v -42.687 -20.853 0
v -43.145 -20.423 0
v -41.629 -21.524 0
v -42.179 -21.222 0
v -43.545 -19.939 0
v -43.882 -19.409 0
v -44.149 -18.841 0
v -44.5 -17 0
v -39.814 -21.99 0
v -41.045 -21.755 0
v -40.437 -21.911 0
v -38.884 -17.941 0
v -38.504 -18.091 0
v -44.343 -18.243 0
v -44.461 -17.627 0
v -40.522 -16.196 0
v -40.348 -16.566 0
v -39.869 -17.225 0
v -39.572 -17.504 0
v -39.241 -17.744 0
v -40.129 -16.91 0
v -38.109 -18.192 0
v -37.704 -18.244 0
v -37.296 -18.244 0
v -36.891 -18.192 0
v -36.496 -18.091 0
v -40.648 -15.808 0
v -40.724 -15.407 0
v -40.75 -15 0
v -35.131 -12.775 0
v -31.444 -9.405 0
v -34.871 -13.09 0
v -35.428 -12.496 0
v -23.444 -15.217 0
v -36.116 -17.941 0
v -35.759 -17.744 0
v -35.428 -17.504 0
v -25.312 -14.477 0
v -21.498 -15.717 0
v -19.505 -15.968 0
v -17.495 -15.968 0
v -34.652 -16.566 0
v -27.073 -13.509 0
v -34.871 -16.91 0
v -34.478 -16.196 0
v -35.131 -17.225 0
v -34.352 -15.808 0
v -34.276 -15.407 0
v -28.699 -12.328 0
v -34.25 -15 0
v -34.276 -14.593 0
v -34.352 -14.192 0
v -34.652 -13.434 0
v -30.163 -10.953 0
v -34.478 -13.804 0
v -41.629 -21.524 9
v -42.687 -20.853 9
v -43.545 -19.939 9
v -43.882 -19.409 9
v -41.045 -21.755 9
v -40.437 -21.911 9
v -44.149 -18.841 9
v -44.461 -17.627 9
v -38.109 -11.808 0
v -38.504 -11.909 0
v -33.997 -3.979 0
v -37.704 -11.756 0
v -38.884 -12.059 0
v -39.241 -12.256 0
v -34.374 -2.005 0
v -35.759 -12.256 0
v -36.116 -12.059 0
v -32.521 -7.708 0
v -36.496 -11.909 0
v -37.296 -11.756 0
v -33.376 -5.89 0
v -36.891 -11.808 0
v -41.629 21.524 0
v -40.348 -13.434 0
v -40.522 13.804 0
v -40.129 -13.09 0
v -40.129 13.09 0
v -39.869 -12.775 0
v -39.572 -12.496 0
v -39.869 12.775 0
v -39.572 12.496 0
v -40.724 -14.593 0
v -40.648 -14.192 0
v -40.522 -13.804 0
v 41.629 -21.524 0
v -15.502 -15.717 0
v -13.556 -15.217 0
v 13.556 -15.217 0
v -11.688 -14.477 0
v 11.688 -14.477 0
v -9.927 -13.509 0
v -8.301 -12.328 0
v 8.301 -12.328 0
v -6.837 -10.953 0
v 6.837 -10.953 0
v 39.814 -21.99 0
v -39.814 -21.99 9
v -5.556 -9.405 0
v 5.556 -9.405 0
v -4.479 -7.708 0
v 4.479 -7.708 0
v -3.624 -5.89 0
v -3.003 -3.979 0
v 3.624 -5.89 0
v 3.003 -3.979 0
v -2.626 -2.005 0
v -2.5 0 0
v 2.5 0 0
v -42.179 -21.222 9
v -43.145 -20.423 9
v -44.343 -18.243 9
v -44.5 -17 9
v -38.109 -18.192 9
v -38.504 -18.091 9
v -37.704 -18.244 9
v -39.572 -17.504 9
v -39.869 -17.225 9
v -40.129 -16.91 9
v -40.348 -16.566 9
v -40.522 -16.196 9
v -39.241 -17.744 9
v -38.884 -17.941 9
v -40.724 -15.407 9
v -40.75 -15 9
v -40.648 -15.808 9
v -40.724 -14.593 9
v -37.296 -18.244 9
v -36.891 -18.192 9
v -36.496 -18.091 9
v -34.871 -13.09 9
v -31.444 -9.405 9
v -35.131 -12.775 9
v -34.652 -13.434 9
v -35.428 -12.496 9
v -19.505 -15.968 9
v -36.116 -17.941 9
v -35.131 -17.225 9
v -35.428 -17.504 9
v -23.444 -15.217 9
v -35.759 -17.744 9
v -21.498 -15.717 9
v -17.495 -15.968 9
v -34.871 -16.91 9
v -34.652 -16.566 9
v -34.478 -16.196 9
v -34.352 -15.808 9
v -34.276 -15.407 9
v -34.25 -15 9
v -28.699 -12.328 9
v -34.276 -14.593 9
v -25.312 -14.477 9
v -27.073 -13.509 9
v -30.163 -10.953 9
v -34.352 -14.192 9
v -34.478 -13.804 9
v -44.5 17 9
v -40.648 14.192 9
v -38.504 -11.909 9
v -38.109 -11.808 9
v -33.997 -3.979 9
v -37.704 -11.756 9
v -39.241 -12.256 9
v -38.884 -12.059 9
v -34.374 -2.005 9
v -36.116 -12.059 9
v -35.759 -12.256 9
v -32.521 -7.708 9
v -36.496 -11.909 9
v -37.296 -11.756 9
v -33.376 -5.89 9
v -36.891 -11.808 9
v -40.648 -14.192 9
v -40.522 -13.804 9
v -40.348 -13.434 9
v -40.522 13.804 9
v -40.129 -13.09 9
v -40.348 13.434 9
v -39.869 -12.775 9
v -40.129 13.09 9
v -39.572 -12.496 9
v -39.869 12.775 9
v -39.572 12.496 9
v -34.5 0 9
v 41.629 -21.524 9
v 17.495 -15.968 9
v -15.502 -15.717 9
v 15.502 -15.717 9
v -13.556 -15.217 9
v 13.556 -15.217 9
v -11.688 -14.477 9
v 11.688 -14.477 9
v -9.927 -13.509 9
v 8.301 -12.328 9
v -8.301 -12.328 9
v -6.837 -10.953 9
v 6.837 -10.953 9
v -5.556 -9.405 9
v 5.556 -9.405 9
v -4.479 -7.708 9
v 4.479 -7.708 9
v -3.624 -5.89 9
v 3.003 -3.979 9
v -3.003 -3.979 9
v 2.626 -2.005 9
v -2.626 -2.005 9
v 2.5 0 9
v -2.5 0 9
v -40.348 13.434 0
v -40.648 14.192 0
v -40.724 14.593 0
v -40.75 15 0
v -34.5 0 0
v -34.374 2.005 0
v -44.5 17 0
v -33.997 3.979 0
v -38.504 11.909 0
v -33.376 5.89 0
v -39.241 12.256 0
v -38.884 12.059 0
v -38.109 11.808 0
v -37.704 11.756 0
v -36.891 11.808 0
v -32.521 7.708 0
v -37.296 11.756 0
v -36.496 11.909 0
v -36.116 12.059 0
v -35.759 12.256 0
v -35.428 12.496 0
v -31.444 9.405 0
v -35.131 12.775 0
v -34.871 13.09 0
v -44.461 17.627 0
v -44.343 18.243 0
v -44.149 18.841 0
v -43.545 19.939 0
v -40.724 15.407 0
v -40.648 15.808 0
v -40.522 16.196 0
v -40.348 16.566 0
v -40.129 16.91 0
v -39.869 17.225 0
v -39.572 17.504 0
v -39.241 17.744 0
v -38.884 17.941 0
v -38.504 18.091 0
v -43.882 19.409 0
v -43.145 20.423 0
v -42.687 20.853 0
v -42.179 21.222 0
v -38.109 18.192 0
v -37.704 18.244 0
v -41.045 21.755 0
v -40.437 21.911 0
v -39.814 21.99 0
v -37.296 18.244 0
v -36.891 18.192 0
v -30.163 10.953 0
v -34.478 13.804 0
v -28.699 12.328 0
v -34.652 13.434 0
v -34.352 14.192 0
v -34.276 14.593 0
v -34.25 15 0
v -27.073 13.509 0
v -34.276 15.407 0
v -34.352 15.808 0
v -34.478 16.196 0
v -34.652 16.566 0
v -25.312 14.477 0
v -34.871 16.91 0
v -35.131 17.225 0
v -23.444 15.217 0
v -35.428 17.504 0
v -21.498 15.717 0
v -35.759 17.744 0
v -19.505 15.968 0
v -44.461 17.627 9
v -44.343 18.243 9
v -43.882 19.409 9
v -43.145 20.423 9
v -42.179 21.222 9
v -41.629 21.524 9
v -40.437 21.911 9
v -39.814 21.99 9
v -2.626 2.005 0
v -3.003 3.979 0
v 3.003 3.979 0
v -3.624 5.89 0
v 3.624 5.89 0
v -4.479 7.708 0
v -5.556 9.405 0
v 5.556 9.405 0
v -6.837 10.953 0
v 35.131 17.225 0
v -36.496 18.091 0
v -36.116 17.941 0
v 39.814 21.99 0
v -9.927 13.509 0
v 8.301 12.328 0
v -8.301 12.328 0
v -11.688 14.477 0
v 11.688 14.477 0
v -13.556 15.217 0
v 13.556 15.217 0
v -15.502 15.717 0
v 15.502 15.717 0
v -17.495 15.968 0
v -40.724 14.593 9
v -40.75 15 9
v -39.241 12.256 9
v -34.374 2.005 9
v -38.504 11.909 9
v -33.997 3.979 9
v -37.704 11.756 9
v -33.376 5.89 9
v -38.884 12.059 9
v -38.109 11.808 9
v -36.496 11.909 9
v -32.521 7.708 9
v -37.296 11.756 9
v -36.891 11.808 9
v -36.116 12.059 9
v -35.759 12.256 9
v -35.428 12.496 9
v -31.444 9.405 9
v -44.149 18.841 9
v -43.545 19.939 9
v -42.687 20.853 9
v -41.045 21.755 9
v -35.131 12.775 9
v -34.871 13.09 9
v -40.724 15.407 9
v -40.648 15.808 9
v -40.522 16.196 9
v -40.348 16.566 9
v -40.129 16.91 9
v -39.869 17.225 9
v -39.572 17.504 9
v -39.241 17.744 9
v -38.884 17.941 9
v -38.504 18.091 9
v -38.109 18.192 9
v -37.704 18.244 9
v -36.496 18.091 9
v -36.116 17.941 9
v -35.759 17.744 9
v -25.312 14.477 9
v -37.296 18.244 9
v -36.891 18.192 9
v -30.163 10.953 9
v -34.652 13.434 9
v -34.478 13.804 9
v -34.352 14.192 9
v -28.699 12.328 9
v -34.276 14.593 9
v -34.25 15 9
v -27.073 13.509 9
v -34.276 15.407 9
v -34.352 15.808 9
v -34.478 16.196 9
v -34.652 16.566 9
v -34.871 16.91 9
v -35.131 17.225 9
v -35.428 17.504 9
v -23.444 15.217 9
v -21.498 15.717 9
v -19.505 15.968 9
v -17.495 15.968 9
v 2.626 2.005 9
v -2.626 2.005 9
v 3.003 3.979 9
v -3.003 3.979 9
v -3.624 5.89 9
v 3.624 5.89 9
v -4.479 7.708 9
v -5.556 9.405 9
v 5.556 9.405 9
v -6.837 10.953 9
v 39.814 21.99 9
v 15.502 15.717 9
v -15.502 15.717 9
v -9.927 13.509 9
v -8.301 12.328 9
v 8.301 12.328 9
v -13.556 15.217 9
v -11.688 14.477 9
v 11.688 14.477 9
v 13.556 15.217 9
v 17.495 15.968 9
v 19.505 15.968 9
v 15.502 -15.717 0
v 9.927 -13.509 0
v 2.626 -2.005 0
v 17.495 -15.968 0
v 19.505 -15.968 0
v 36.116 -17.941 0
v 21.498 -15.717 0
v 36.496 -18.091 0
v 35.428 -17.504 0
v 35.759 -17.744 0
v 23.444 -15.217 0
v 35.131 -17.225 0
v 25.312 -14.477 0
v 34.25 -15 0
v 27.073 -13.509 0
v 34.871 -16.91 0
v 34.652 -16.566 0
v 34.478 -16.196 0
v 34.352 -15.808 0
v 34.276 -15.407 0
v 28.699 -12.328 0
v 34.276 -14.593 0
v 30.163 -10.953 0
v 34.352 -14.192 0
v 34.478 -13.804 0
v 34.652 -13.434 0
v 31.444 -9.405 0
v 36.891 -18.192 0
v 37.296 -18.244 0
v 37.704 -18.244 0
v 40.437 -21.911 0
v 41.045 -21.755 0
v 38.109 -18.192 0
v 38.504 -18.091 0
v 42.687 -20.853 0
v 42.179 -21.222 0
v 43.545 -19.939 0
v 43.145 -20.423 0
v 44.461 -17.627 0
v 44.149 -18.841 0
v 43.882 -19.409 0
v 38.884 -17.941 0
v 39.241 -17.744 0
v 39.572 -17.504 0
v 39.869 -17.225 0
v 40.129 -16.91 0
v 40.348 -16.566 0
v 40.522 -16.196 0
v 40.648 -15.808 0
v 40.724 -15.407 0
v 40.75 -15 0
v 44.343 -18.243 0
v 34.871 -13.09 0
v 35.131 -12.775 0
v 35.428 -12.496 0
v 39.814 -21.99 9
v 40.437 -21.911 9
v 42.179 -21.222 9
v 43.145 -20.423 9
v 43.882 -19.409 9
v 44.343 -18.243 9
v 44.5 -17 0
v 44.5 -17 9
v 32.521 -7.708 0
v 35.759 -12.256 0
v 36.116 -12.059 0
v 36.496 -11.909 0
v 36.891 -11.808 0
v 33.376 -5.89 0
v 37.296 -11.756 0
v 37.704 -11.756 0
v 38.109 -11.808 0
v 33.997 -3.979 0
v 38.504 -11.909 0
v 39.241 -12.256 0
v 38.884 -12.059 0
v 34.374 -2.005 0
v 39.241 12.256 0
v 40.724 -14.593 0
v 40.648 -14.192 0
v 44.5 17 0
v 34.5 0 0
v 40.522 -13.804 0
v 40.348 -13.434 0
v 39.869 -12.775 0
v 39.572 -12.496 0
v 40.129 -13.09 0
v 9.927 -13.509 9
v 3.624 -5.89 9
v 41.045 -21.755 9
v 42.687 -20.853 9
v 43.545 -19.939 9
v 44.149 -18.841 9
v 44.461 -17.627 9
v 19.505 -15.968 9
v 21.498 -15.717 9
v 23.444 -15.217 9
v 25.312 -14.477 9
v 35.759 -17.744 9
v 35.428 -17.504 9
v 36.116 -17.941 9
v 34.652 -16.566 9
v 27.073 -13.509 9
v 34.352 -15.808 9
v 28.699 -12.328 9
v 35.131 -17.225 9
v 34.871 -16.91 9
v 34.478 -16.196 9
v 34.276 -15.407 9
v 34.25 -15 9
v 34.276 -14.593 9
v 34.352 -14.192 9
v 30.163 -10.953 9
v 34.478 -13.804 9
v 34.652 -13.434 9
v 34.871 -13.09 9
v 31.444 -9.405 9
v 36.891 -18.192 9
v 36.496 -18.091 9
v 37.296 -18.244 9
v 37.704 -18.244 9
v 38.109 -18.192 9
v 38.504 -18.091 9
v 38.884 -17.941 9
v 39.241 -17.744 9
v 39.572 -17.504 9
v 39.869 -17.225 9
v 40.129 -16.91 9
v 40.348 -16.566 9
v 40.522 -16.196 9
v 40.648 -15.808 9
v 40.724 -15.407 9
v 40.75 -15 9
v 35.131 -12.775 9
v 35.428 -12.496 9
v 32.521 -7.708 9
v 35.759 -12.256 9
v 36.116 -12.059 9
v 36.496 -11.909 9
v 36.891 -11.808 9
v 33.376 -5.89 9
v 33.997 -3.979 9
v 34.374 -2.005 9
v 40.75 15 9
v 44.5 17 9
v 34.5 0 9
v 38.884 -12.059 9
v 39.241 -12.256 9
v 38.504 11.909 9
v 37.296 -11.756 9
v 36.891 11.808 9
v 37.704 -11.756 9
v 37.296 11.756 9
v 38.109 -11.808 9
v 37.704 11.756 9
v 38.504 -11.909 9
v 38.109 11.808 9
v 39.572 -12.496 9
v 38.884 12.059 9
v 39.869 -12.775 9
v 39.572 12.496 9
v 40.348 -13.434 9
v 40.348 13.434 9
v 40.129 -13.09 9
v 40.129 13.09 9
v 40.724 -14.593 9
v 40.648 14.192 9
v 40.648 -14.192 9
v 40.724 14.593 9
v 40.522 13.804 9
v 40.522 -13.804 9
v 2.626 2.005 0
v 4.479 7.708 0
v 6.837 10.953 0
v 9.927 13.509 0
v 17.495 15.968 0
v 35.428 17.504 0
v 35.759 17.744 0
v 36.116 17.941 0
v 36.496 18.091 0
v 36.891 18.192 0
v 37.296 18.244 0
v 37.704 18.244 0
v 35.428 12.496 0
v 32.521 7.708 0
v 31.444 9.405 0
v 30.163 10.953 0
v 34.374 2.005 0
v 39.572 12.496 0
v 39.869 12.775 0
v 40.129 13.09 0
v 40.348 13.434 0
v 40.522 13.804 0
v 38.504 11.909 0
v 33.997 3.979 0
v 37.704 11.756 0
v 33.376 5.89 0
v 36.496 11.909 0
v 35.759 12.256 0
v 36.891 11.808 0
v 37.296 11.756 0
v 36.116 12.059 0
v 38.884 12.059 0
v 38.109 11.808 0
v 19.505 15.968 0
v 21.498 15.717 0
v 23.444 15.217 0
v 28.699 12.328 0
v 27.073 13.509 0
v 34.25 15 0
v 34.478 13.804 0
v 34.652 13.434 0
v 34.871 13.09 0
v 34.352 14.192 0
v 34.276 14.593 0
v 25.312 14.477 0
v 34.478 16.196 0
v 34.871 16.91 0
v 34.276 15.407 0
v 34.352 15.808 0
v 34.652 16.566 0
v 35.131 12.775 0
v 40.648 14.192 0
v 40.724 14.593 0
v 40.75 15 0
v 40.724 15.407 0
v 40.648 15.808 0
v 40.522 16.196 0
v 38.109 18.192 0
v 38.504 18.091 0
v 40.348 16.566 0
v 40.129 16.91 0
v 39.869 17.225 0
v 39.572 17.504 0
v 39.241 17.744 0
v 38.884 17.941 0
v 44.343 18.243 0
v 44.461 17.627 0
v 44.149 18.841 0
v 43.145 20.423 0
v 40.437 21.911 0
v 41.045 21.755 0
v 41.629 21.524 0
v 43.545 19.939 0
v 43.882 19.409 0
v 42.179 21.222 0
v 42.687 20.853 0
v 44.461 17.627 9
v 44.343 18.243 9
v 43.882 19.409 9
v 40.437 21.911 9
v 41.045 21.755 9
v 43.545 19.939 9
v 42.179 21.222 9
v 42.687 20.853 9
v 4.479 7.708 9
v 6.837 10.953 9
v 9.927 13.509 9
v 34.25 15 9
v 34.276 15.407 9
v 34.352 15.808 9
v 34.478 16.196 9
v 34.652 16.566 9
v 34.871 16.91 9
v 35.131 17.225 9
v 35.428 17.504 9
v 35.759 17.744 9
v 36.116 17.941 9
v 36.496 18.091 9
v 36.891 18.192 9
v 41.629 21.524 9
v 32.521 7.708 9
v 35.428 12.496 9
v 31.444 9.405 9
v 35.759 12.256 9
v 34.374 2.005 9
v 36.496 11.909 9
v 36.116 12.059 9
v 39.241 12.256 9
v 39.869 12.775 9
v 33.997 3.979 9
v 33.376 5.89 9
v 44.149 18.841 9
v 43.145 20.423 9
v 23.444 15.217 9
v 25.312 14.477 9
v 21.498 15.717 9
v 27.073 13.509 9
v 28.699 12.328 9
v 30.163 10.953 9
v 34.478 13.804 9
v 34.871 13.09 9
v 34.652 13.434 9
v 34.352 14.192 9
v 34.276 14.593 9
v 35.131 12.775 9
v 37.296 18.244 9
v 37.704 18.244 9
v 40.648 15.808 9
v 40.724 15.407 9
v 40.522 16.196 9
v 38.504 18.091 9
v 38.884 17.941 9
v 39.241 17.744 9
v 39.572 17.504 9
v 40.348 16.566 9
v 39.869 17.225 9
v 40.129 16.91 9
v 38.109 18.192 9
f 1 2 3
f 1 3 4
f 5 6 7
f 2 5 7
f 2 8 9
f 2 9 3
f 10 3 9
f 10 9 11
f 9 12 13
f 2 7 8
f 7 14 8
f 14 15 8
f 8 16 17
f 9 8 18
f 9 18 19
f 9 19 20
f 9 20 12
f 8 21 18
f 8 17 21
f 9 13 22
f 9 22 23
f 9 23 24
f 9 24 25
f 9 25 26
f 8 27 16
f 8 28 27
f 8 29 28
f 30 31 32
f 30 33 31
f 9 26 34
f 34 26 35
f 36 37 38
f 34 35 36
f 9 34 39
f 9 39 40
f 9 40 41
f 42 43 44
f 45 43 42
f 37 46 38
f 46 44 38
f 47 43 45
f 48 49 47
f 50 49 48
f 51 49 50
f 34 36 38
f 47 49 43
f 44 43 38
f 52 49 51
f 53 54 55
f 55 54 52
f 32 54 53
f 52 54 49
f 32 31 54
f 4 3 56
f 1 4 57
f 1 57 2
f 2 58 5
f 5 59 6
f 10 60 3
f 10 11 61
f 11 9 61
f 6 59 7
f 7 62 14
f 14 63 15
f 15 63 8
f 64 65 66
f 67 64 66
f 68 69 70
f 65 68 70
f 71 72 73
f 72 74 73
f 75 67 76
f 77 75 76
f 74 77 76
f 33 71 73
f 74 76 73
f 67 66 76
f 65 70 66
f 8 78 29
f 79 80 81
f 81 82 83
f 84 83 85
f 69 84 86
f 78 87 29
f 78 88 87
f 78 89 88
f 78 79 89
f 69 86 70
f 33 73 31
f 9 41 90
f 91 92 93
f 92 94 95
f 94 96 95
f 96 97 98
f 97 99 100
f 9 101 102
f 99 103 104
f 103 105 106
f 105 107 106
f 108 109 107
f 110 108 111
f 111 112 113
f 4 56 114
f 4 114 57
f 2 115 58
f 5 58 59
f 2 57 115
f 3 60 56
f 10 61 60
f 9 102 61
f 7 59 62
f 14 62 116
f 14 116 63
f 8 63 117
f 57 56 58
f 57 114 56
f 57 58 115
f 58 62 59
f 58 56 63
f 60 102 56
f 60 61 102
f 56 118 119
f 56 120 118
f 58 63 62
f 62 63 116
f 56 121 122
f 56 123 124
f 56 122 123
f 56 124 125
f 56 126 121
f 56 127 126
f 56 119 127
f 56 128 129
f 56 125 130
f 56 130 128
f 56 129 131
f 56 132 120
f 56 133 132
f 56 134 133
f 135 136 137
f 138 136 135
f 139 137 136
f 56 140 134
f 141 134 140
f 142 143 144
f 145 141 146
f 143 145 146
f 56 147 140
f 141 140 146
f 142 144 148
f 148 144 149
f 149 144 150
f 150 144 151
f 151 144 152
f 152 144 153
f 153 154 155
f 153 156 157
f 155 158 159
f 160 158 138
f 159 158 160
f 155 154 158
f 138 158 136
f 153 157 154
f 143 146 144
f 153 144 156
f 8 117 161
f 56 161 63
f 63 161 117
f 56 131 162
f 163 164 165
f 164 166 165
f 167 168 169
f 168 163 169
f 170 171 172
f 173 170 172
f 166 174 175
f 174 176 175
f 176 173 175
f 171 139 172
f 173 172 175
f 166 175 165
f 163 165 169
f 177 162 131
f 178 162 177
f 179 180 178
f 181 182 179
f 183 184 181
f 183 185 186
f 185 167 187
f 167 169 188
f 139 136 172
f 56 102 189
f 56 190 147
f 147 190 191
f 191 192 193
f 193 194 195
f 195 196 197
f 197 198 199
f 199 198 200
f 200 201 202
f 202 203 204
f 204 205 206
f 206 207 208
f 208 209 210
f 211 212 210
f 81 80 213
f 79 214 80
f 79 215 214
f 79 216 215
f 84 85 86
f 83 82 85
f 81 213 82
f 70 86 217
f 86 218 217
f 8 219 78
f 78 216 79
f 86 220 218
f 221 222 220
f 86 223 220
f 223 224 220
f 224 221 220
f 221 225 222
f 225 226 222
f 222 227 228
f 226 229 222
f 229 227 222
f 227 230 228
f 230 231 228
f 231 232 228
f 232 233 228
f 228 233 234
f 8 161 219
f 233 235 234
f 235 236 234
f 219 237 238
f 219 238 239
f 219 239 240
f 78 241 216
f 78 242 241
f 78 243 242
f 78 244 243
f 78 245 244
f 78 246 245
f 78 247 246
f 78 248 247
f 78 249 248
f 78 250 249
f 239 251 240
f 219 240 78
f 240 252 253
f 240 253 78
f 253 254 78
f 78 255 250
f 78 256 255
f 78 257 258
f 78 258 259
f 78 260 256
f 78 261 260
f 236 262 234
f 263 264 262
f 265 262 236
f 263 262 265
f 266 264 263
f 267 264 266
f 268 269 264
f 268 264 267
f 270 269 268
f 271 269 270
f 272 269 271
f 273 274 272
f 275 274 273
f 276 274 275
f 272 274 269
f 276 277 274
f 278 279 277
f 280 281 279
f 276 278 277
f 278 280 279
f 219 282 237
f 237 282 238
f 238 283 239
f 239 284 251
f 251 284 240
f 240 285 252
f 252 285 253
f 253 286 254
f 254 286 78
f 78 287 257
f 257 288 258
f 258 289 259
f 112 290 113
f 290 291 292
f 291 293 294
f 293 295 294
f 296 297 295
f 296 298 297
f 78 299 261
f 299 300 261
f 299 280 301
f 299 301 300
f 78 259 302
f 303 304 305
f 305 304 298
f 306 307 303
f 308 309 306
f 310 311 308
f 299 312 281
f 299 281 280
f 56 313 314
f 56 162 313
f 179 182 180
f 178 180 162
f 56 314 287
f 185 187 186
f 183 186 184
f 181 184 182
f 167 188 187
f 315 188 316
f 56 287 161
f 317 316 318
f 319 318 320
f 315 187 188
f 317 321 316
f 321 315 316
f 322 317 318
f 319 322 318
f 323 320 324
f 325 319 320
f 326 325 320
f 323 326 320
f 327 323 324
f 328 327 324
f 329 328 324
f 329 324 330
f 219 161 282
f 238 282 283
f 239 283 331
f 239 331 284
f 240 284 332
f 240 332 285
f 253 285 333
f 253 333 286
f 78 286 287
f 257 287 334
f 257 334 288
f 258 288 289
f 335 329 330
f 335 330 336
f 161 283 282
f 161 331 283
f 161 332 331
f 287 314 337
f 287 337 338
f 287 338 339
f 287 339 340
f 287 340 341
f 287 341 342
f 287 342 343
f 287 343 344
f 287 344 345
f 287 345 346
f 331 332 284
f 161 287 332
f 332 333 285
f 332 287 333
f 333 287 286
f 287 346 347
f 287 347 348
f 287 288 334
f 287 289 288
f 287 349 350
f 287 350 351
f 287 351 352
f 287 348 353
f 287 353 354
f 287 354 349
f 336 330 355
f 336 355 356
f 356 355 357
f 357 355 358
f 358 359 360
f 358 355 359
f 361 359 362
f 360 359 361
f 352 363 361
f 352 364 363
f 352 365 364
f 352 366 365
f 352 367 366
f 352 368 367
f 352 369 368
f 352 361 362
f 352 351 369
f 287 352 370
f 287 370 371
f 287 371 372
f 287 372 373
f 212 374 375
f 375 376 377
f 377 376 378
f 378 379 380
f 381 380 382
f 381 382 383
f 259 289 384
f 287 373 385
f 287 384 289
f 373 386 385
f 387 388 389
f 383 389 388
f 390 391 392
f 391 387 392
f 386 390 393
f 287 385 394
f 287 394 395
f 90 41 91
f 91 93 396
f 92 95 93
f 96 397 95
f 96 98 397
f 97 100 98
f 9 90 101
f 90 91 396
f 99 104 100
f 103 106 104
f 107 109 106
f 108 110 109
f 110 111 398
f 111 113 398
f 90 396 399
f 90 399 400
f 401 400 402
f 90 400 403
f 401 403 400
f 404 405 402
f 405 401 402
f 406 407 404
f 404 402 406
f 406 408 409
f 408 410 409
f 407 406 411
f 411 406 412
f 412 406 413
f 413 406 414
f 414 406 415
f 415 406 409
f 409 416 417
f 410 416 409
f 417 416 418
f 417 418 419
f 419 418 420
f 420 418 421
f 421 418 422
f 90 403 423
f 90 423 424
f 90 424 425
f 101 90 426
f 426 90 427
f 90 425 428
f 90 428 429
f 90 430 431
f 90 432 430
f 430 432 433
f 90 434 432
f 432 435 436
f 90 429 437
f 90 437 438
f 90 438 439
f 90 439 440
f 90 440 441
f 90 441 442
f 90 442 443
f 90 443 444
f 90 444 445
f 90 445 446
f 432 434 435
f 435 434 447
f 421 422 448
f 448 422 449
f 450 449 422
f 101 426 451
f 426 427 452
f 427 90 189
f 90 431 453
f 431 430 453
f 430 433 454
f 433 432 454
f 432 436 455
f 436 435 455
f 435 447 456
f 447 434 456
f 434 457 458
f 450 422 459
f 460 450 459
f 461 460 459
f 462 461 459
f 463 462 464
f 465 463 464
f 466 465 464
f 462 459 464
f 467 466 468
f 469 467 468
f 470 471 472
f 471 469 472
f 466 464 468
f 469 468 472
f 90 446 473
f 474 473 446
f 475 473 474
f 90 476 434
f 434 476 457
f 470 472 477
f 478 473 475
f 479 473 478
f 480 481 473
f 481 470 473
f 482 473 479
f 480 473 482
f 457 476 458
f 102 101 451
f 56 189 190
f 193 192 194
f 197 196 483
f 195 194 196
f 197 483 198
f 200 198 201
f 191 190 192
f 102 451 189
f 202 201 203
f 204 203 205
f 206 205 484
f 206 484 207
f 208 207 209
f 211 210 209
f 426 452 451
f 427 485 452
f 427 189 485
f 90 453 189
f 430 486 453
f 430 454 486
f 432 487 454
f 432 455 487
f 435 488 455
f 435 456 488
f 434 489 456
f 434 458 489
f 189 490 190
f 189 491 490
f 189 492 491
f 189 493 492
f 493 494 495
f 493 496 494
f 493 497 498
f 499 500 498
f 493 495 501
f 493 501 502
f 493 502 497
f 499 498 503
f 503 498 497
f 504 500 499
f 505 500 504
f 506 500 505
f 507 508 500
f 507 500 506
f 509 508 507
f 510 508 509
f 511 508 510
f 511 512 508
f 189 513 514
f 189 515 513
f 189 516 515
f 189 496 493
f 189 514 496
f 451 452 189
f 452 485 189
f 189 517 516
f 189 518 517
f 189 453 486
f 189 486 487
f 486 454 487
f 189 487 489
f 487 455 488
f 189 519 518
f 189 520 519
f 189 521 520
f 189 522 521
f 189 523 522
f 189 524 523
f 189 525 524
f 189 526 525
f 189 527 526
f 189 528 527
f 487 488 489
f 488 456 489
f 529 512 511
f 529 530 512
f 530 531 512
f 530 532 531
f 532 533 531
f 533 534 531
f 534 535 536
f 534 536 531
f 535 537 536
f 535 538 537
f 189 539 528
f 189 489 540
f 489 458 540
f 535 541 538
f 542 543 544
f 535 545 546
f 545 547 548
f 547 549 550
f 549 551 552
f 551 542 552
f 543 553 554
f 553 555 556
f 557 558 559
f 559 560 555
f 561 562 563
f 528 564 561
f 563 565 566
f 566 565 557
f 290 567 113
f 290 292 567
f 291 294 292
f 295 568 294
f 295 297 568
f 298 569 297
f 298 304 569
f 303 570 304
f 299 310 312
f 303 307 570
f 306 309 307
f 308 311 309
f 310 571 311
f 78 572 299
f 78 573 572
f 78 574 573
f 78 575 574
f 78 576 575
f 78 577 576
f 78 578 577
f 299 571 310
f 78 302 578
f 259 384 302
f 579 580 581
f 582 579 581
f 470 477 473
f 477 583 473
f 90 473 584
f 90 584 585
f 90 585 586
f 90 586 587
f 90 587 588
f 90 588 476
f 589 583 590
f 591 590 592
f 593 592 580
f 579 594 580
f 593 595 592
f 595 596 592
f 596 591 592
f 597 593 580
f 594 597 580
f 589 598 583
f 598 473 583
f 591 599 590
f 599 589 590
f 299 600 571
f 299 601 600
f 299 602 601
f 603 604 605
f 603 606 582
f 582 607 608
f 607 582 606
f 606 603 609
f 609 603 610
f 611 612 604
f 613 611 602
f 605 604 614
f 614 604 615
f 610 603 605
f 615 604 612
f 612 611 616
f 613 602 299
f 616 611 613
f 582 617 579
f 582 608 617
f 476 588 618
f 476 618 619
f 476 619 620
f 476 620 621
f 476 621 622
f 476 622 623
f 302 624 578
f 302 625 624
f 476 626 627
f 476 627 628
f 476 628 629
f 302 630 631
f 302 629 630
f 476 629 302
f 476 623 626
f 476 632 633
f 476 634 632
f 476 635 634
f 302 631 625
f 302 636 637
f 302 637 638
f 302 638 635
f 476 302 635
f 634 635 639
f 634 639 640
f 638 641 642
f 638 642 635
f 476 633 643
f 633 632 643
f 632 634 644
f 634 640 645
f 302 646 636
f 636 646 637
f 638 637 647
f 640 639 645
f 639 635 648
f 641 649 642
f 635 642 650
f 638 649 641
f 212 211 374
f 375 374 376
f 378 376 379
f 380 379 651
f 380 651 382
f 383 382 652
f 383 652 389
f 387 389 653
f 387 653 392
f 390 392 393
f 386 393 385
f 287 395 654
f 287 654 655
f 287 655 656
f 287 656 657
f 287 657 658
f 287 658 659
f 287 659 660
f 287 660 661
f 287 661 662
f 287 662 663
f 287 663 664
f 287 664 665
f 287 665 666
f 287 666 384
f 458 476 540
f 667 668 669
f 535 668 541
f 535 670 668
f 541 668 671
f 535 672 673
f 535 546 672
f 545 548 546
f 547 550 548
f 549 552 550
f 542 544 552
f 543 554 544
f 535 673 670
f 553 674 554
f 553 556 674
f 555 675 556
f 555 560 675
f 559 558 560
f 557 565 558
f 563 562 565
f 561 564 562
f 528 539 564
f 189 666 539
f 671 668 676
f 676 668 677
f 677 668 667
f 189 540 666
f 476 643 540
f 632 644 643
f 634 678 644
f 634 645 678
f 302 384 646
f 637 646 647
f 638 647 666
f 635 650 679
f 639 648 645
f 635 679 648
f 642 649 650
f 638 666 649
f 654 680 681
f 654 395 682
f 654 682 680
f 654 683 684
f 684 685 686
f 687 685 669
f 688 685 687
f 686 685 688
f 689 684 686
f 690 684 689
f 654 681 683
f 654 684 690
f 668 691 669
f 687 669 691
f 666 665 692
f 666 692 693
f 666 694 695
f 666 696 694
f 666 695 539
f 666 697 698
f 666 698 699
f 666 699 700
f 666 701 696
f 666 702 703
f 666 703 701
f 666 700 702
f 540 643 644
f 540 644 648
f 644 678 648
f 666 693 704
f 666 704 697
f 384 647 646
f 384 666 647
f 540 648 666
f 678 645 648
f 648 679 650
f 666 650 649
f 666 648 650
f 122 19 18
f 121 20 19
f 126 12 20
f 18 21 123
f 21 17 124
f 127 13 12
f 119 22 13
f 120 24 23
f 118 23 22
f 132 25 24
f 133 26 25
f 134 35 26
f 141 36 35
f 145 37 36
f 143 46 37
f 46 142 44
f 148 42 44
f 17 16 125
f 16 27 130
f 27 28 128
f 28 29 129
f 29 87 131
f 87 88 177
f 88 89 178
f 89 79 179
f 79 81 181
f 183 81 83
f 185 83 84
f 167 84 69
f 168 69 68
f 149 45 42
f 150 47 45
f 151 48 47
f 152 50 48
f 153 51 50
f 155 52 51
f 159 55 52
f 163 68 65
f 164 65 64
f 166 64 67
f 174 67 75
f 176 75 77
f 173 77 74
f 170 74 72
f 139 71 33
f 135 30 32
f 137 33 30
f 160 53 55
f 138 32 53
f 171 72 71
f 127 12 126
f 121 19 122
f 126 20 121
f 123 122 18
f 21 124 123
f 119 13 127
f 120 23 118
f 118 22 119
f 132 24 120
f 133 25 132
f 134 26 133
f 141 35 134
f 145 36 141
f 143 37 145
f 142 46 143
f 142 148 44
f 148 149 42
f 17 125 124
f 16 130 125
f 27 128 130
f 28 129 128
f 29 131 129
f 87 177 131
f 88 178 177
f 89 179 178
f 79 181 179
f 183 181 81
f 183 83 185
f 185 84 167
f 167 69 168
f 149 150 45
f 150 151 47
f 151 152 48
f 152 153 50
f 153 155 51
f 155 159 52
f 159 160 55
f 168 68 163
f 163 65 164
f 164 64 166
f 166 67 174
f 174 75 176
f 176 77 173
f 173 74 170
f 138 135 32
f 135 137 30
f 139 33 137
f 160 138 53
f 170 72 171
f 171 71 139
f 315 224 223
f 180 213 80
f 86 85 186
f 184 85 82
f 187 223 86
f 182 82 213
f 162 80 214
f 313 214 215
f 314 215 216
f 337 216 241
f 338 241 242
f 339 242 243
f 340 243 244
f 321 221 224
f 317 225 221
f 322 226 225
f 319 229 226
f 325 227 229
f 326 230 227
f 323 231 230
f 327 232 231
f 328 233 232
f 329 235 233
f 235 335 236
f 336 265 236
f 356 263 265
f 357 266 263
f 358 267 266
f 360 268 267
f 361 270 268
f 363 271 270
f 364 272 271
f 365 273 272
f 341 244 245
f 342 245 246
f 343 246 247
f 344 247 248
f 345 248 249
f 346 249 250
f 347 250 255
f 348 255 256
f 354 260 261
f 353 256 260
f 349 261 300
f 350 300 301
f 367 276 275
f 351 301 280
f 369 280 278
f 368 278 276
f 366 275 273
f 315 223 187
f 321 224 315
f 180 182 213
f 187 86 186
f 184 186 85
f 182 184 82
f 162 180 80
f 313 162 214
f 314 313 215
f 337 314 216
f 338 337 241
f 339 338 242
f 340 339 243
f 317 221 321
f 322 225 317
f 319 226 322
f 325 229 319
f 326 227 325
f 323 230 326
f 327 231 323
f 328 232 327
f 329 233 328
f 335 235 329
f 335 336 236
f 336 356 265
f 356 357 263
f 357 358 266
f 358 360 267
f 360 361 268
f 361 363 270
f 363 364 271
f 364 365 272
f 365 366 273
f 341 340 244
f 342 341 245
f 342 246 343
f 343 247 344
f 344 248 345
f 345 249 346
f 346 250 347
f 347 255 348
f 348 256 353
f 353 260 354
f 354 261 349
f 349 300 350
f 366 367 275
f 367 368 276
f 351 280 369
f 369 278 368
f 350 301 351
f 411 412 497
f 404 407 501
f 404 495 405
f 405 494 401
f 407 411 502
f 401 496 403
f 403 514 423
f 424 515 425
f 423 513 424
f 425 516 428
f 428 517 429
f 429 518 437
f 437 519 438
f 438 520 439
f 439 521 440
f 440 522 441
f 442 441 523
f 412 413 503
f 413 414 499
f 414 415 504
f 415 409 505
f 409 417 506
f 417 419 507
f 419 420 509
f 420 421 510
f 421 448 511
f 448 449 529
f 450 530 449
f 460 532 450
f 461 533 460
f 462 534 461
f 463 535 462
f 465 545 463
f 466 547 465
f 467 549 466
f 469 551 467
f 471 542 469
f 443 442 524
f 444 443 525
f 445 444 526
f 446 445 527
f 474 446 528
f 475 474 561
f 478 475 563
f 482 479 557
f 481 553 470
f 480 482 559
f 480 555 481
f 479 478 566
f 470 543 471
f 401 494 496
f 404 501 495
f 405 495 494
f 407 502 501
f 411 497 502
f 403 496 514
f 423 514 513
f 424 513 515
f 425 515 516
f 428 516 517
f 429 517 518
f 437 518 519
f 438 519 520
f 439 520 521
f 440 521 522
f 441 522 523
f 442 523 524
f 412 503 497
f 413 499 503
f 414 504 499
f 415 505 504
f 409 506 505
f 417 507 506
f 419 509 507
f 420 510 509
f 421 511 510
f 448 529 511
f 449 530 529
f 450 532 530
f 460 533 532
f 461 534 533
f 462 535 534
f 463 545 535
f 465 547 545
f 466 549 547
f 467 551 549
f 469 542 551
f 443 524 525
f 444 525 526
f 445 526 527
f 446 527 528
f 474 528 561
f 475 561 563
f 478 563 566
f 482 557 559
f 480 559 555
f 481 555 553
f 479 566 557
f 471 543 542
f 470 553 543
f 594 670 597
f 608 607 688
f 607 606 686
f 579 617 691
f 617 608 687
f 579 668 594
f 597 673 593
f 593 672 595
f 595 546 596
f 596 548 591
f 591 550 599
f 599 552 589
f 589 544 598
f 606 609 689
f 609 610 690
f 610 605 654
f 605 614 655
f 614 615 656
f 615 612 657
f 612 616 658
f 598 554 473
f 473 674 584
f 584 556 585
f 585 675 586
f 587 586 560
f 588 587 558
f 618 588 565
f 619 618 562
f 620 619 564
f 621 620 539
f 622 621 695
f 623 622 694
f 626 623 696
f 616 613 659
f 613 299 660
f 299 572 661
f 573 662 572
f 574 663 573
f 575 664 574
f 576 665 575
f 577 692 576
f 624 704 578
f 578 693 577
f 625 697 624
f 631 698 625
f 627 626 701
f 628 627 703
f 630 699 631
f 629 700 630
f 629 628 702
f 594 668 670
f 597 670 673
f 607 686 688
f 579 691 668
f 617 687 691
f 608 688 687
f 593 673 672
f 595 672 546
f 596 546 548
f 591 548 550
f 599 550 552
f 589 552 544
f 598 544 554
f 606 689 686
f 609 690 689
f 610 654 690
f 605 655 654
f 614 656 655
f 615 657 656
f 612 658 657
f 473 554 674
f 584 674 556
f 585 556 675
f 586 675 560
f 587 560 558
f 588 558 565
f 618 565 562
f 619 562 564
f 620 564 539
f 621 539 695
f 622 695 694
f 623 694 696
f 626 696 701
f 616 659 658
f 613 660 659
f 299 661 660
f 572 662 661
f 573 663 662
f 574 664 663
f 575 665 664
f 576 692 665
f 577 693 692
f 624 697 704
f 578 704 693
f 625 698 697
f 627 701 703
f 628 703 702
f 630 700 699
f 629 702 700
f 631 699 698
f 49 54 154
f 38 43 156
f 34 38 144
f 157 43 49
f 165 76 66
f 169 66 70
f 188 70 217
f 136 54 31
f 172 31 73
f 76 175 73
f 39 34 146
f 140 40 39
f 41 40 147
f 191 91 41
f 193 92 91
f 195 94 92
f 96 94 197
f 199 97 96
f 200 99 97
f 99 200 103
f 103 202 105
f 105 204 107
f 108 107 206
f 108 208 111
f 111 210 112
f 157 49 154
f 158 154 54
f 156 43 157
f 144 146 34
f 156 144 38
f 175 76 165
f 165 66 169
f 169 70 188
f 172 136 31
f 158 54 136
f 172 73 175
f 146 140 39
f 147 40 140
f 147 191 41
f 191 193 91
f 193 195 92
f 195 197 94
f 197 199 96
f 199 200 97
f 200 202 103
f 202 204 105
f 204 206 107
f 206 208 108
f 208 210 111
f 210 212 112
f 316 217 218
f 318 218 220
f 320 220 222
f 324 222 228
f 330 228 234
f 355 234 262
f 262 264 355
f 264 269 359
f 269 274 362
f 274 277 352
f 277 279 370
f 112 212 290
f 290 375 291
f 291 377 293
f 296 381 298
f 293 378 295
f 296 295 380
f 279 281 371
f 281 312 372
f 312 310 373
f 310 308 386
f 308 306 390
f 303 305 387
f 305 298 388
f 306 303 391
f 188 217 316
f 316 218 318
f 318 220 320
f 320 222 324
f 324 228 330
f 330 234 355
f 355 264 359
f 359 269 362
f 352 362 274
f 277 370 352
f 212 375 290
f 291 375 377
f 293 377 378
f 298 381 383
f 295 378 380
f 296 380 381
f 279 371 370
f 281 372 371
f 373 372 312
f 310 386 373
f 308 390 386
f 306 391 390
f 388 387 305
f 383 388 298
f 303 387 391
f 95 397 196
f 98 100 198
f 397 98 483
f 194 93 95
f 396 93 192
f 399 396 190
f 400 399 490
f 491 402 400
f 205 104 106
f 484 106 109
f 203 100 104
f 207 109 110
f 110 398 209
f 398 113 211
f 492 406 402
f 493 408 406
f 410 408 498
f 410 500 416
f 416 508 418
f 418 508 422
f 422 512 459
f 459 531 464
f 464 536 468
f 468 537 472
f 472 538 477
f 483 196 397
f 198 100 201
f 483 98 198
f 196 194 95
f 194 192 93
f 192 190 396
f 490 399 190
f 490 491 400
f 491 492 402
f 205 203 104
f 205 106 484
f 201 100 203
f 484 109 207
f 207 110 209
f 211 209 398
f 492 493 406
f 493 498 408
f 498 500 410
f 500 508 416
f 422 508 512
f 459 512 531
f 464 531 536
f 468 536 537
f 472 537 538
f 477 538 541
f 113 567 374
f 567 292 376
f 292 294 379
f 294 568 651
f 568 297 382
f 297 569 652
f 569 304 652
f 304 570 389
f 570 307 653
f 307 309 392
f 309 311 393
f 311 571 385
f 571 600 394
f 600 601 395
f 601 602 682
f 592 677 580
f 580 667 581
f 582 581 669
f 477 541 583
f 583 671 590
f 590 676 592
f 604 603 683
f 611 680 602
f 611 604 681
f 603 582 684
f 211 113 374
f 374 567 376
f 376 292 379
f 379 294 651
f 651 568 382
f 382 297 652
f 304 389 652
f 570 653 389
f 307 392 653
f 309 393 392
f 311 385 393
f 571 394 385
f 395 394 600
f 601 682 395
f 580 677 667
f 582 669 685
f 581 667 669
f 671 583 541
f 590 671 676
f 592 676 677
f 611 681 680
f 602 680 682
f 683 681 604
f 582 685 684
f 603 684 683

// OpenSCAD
$fn = 50;

difference() {
	union() {
		hull() {
			translate(v = [-39.5, 17.0, 0]) {
				cylinder(h = 9, r = 5);
			}
			translate(v = [39.5, 17.0, 0]) {
				cylinder(h = 9, r = 5);
			}
			translate(v = [-39.5, -17.0, 0]) {
				cylinder(h = 9, r = 5);
			}
			translate(v = [39.5, -17.0, 0]) {
				cylinder(h = 9, r = 5);
			}
		}
	}
	union() {
		translate(v = [-37.5, -15.0, -100.0]) {
			cylinder(h = 200, r = 3.25);
		}
		translate(v = [-37.5, 15.0, -100.0]) {
			cylinder(h = 200, r = 3.25);
		}
		translate(v = [37.5, -15.0, -100.0]) {
			cylinder(h = 200, r = 3.25);
		}
		translate(v = [37.5, 15.0, -100.0]) {
			cylinder(h = 200, r = 3.25);
		}
		translate(v = [-37.5, -15.0, -100.0]) {
			cylinder(h = 200, r = 1.8);
		}
		translate(v = [-37.5, 15.0, -100.0]) {
			cylinder(h = 200, r = 1.8);
		}
		translate(v = [37.5, -15.0, -100.0]) {
			cylinder(h = 200, r = 1.8);
		}
		translate(v = [37.5, 15.0, -100.0]) {
			cylinder(h = 200, r = 1.8);
		}
		translate(v = [-18.5, 0, 0.0]) {
			cylinder(h = 9, r = 16.0);
		}
		translate(v = [18.5, 0, 0.0]) {
			cylinder(h = 9, r = 16.0);
		}
	}
}
